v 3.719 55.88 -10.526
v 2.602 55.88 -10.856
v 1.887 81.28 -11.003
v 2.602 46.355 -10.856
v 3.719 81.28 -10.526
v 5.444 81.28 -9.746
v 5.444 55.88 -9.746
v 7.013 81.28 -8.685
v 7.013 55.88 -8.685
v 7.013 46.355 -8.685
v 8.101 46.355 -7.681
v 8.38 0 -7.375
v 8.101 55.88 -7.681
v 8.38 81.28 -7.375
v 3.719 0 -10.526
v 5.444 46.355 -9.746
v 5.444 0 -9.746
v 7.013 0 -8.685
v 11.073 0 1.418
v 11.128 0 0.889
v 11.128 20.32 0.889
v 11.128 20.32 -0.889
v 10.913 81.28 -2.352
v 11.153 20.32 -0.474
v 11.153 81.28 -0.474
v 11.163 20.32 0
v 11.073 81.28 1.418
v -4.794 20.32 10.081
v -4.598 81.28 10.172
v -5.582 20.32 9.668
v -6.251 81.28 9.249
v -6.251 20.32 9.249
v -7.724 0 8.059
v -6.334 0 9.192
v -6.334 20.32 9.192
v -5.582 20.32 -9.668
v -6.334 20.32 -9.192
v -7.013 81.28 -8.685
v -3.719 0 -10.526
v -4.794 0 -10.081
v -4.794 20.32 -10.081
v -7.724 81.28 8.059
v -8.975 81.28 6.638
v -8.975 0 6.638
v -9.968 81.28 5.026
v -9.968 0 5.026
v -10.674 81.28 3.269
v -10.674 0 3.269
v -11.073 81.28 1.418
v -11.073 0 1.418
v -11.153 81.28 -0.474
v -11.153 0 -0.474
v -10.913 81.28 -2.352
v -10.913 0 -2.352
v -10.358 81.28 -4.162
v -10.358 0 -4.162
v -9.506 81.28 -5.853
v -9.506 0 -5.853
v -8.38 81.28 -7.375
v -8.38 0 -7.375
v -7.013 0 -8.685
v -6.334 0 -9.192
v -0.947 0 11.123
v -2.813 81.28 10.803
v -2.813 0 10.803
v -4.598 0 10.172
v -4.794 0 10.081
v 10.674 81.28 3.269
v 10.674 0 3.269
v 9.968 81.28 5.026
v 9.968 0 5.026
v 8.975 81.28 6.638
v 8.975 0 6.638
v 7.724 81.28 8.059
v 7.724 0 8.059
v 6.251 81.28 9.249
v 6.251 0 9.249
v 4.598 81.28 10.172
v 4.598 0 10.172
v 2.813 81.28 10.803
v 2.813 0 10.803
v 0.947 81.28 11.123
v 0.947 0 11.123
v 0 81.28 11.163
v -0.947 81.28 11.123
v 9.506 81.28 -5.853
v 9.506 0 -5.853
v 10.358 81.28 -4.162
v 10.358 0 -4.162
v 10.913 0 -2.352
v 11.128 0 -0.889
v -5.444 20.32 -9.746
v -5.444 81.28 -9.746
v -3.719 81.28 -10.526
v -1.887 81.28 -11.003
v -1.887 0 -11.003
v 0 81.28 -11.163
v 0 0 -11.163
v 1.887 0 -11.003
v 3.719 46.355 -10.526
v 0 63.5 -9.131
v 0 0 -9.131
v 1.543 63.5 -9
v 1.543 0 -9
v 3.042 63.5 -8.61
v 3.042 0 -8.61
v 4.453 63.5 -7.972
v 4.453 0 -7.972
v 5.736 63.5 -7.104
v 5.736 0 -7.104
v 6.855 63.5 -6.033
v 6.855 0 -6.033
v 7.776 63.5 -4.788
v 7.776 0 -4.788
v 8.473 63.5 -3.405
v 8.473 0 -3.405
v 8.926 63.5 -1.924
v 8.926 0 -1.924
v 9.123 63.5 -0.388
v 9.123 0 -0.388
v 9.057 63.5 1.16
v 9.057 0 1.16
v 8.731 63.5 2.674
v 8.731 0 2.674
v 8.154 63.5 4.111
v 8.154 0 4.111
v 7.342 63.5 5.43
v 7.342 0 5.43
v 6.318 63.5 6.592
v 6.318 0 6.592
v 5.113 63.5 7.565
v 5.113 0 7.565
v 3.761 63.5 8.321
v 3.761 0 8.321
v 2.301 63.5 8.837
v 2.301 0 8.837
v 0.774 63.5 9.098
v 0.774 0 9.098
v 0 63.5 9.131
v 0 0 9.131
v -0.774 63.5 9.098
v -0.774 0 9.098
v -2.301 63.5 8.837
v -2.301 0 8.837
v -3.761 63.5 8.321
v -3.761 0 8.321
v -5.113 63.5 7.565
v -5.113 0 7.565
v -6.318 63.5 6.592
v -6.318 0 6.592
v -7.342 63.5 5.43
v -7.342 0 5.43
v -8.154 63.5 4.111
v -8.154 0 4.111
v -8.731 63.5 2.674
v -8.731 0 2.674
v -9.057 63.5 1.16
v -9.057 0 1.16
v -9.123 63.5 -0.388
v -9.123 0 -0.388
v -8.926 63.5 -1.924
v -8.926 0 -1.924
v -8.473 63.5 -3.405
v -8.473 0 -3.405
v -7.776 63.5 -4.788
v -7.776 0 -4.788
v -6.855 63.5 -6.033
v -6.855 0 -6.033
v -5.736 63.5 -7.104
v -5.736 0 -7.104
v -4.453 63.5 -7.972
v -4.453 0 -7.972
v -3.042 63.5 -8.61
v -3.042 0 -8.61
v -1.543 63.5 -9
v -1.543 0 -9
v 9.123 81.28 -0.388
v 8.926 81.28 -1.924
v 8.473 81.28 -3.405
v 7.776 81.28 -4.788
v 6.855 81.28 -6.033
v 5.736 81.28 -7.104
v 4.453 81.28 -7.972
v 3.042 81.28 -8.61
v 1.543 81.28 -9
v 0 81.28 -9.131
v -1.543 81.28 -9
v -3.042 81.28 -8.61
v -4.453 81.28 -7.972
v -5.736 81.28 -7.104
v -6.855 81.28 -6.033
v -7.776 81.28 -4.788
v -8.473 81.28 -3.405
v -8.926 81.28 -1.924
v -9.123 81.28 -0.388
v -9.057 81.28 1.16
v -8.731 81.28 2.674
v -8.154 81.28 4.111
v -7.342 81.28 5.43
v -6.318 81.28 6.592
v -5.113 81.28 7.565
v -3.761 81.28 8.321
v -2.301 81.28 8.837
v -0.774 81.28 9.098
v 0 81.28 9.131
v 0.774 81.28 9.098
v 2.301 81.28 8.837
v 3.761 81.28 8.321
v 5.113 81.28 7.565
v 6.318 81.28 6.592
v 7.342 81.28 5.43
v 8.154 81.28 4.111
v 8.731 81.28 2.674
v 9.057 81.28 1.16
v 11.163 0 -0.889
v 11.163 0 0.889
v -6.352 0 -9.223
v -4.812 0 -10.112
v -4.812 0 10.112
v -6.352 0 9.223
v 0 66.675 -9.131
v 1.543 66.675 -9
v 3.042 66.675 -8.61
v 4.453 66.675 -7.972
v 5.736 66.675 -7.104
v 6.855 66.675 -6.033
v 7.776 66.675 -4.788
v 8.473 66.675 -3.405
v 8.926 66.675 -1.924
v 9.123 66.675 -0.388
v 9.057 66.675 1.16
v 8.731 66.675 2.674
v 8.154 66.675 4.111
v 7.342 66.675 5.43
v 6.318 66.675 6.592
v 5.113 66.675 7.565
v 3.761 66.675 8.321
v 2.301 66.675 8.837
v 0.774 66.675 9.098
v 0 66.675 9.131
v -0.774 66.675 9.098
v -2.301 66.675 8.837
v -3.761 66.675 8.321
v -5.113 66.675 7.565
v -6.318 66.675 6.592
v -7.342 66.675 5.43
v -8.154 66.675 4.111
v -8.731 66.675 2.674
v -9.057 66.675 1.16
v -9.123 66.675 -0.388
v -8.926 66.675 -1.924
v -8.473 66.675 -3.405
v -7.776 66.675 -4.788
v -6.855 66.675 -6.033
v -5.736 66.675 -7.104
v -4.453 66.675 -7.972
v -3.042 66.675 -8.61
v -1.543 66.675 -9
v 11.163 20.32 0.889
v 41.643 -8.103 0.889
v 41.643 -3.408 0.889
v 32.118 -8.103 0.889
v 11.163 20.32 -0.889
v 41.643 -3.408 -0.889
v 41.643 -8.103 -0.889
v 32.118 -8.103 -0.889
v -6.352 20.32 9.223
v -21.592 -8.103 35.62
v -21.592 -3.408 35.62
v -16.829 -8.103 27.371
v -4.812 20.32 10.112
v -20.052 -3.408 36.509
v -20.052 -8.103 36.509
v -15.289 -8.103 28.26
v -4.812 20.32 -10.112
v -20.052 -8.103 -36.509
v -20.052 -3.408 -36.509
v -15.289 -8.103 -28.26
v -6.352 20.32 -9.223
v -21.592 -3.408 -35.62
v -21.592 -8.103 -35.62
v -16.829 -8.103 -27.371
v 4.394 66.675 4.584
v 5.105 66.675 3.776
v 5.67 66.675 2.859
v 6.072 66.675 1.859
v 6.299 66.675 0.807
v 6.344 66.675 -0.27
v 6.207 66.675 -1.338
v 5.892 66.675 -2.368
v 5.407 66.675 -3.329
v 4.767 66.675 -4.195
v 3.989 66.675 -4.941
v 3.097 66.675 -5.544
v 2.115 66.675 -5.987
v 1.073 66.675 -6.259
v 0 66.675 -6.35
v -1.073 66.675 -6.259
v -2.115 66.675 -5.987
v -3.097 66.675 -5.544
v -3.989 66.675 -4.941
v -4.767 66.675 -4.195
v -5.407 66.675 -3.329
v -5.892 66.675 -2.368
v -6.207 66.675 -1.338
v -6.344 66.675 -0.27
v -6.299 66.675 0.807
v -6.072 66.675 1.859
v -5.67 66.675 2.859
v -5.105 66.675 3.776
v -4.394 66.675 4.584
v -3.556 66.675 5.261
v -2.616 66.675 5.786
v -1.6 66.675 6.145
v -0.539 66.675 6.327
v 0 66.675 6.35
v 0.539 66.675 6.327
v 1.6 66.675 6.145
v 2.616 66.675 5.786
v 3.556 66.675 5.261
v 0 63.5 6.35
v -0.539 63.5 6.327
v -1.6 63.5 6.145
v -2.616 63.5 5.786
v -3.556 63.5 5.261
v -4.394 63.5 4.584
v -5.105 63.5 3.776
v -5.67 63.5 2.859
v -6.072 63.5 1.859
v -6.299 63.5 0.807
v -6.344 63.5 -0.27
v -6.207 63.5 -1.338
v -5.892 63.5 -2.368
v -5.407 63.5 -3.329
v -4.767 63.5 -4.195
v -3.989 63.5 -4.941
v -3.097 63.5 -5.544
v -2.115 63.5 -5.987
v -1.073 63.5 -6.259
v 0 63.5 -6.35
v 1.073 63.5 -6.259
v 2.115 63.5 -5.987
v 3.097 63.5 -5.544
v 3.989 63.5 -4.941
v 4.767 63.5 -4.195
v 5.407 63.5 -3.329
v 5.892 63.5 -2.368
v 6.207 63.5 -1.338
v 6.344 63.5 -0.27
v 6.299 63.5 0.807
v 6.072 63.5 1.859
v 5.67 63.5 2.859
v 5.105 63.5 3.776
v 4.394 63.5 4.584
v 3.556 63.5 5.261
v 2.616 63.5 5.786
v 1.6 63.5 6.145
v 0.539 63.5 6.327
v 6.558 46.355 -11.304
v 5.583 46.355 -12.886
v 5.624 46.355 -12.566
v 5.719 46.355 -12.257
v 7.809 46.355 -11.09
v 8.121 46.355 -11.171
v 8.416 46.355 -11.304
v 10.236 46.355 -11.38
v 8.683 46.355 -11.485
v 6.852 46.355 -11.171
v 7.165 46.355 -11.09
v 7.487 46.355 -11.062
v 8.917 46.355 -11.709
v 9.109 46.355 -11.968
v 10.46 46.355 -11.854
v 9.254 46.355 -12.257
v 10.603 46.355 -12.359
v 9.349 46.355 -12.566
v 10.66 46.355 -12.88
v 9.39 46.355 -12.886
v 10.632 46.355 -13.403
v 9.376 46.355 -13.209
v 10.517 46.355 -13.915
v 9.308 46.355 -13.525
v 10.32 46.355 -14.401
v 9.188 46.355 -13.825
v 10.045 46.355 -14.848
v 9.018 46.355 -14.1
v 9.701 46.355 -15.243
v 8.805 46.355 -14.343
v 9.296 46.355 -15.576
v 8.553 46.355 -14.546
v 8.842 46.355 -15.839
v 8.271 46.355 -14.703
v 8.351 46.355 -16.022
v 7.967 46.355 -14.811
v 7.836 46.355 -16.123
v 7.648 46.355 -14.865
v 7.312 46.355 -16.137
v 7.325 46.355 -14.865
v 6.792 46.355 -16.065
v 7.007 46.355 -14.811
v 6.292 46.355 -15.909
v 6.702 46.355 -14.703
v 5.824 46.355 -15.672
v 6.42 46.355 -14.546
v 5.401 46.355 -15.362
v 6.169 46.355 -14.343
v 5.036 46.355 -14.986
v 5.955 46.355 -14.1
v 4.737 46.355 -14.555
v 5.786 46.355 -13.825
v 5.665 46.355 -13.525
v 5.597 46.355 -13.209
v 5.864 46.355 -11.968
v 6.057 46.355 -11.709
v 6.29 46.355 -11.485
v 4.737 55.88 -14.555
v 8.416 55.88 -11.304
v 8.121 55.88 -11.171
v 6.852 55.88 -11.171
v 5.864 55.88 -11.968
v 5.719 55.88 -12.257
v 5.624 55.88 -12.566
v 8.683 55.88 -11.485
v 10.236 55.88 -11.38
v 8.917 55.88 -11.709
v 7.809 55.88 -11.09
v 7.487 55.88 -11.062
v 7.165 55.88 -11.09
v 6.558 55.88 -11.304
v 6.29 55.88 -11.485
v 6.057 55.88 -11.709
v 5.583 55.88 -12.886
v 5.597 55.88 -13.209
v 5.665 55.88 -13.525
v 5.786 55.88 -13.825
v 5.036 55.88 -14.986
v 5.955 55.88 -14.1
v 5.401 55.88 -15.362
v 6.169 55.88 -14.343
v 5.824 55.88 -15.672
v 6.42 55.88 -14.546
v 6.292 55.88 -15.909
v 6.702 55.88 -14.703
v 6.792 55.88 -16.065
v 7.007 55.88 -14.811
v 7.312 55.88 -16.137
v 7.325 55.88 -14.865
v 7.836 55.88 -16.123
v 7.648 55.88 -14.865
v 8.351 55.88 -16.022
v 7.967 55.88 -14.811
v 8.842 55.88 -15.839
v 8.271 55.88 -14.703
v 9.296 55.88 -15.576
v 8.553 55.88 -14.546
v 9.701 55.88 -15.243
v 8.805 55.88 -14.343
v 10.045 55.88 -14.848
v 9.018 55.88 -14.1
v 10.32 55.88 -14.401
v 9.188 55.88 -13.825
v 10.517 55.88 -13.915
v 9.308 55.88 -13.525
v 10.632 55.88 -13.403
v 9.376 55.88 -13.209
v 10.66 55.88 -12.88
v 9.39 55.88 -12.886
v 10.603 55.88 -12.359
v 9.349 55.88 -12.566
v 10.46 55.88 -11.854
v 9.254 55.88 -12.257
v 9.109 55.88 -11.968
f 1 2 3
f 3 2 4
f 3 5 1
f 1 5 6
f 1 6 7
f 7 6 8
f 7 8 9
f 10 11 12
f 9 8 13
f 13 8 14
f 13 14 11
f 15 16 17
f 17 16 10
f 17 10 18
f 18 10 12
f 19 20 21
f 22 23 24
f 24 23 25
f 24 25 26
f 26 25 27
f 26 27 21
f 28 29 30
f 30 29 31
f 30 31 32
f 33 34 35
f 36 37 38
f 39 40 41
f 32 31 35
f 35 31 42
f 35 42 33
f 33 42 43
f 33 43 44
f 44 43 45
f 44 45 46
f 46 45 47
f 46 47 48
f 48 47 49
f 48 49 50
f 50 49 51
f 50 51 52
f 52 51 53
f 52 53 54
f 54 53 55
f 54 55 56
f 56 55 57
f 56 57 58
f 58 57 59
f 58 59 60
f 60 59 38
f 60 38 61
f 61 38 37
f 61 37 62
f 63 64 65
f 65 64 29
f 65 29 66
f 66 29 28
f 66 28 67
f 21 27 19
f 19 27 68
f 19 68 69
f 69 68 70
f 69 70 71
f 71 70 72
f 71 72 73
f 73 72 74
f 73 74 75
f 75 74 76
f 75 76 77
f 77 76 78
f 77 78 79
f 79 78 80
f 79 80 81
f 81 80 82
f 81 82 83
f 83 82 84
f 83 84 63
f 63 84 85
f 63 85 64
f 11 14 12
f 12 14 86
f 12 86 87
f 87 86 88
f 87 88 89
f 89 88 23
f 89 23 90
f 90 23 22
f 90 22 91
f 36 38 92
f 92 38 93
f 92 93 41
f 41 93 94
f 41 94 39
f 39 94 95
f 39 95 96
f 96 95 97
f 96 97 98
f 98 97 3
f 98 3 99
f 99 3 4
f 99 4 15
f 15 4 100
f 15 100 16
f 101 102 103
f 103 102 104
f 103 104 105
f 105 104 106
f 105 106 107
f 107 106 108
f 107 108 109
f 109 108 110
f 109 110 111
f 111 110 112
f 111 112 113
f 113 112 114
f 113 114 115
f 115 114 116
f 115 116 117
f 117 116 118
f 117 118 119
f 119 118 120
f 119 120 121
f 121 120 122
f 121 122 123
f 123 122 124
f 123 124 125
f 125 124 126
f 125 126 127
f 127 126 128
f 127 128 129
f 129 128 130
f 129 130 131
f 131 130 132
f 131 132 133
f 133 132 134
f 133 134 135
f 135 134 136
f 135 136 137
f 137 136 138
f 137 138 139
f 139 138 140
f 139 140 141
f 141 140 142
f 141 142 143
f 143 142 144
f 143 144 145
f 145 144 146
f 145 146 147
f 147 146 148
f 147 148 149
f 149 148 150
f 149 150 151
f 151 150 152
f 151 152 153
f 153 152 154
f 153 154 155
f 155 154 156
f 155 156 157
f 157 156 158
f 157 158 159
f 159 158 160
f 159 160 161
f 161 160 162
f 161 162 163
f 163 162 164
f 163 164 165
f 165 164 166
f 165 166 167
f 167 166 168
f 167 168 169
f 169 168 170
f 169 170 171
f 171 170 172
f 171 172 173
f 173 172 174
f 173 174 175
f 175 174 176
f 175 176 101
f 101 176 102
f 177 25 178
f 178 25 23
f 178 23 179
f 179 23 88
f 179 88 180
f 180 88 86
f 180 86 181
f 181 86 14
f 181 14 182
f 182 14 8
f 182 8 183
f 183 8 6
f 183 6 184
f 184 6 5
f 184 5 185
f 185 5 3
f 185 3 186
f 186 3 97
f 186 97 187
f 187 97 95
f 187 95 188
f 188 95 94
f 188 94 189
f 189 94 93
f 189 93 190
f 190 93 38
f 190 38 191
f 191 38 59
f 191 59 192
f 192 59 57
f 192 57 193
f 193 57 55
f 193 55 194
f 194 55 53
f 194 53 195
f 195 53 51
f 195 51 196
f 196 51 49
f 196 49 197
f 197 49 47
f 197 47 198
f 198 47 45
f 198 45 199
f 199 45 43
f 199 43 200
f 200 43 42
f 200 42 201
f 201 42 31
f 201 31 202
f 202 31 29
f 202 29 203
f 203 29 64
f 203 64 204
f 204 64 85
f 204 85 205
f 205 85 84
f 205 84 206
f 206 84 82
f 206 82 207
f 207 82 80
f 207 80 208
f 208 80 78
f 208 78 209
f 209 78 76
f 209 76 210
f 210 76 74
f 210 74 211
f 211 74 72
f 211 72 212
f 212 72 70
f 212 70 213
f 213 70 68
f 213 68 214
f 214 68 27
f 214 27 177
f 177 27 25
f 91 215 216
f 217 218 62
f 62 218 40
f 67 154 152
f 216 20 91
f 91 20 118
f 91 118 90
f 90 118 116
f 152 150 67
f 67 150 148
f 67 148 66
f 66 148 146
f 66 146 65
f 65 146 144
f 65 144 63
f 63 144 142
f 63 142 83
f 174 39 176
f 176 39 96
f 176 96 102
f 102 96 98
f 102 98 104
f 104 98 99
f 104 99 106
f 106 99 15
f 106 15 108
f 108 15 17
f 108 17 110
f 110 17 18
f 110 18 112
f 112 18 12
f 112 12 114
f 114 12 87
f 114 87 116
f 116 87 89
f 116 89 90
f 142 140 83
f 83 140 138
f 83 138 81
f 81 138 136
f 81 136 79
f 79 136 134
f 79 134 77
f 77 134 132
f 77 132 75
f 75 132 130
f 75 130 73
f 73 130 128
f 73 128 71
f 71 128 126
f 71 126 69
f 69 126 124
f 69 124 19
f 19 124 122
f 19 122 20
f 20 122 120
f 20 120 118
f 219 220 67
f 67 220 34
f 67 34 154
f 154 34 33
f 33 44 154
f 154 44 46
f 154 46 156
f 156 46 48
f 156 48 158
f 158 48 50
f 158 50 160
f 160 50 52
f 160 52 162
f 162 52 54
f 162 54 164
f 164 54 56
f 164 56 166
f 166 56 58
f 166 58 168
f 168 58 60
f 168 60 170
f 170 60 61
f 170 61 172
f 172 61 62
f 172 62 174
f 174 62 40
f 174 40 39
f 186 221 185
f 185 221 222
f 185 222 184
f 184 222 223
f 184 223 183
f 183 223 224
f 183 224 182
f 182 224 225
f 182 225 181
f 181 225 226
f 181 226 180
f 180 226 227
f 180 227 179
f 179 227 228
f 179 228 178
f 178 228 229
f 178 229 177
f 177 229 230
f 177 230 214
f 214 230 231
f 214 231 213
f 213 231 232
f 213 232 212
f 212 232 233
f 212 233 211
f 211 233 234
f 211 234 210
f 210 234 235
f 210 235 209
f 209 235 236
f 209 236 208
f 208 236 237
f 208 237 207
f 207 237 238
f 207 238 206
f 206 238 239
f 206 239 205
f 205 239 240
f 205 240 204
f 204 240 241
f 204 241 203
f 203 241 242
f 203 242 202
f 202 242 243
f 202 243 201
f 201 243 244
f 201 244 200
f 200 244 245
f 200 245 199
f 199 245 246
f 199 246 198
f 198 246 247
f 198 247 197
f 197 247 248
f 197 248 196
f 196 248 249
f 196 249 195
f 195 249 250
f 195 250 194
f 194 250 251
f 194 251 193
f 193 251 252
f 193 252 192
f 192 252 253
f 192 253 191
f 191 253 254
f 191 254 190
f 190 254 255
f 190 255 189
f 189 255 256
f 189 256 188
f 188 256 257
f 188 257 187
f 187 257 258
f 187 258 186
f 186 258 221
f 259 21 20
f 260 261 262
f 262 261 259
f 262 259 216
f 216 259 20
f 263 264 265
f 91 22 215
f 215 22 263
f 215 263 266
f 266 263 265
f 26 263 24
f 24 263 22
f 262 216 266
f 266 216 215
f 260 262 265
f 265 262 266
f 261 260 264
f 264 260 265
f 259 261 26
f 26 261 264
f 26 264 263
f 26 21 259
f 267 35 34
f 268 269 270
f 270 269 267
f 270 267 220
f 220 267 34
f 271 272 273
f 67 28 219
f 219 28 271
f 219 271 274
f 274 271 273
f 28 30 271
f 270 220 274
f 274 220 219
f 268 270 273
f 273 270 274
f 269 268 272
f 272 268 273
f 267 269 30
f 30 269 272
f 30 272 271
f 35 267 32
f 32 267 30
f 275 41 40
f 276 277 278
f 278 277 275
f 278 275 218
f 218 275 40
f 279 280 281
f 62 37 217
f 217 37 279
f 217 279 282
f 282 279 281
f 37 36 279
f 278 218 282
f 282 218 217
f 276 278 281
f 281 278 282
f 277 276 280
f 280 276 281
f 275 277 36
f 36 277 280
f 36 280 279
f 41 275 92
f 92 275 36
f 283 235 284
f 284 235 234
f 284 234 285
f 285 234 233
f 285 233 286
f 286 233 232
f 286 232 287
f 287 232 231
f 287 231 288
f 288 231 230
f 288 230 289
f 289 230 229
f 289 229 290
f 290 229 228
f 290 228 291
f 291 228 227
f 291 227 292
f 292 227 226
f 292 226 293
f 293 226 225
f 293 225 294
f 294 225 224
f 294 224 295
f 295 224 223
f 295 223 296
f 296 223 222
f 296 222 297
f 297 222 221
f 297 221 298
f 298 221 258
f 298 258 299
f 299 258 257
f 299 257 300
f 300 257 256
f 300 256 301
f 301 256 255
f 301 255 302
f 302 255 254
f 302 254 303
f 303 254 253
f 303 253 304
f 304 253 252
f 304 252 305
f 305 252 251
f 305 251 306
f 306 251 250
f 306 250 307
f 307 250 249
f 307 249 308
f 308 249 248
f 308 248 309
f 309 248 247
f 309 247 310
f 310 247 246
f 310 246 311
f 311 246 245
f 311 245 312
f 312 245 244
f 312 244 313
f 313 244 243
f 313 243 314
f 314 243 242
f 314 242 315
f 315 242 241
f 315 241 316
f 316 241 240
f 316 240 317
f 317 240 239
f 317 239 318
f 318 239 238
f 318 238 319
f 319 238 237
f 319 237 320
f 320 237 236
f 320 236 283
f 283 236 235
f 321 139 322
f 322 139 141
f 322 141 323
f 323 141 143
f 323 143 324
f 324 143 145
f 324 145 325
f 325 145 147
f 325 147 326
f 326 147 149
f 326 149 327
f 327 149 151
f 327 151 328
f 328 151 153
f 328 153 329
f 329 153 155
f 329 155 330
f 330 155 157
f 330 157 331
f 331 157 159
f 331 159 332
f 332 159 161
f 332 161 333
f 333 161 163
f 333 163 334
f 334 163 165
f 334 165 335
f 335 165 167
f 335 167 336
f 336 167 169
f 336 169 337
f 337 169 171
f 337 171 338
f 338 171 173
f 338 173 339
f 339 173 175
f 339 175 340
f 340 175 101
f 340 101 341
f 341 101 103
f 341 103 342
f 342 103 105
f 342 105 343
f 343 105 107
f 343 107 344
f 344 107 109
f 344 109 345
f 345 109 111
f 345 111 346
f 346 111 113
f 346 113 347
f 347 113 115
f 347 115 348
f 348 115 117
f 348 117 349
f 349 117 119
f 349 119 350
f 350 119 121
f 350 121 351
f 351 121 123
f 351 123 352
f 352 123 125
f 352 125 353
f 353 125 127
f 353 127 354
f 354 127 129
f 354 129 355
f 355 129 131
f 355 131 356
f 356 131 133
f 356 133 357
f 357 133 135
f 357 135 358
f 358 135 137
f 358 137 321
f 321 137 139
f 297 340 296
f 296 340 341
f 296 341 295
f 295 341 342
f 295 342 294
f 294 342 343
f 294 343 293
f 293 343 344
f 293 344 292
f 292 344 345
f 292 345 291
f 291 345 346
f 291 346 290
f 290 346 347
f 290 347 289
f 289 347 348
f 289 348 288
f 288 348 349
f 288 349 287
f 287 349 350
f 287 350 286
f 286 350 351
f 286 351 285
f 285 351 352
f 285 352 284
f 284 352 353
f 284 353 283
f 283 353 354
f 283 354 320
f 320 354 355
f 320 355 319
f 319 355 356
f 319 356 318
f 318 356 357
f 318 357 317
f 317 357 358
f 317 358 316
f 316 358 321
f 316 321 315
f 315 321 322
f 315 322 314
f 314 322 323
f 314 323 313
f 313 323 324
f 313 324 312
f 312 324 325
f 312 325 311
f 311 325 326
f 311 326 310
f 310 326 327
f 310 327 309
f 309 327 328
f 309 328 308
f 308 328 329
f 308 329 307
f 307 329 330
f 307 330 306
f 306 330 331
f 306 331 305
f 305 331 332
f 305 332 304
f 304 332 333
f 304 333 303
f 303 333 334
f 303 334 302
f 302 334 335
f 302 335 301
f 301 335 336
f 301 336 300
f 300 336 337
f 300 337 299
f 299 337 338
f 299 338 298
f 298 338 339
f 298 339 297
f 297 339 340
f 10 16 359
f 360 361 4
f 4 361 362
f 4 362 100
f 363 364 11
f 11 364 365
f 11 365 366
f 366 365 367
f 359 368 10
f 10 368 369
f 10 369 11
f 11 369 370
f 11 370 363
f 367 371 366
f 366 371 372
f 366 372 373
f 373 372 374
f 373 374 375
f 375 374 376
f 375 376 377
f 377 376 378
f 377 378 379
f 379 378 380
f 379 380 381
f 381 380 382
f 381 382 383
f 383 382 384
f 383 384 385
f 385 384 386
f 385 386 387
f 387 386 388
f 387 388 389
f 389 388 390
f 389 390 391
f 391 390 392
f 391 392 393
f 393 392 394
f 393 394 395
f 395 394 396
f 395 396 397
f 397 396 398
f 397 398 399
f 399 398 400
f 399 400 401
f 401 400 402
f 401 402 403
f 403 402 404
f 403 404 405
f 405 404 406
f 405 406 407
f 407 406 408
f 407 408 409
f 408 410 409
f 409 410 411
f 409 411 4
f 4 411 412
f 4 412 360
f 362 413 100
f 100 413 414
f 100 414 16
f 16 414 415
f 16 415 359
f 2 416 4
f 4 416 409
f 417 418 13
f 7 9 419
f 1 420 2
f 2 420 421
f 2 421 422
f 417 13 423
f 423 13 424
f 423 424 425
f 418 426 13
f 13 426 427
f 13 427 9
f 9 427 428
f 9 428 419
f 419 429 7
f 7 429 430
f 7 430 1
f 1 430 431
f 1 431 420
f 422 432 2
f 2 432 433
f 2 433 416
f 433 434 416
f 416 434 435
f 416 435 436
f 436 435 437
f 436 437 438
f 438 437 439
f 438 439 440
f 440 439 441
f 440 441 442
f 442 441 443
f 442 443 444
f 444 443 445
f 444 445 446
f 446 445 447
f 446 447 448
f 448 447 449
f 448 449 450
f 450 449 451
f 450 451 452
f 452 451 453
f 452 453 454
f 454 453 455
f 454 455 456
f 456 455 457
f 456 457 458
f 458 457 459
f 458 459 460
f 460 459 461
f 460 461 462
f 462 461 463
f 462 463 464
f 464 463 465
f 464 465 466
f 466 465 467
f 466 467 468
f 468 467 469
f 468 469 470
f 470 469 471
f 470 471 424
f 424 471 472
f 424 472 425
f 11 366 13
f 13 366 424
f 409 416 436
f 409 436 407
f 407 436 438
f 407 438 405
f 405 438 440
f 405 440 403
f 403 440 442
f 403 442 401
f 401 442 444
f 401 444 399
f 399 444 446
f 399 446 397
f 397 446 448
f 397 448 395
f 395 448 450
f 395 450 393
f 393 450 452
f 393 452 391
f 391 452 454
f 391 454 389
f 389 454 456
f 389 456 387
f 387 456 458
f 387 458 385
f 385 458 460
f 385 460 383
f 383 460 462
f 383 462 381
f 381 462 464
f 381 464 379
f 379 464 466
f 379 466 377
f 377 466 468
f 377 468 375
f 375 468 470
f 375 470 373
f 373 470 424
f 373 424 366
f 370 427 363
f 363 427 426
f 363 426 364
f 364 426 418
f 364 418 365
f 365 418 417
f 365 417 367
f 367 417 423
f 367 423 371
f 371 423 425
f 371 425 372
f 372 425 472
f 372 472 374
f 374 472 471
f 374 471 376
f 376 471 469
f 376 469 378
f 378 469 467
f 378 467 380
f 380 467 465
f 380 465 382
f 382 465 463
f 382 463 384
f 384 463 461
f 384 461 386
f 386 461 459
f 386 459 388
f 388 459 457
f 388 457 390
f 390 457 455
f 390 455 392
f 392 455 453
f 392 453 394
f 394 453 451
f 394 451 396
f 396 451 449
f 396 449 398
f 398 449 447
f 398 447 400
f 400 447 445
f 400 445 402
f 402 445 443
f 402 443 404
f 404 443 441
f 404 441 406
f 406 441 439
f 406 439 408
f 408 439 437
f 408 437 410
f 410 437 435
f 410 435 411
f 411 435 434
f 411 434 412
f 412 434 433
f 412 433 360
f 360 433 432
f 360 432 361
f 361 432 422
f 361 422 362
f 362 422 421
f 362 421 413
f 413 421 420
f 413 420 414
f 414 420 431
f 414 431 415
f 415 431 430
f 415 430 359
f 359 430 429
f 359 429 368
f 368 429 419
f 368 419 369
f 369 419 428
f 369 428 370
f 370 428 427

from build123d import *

# Parameters (mm, degrees)
SKETCH1_R           = 11.1633
SKETCH1_R_2         = 9.1313
BOSS_EXTRUDE1_DEPTH = 81.28
BOSS_EXTRUDE2_DEPTH = 0.889
CIRPATTERN1_COUNT   = 3
SKETCH3_R           = 9.1313
SKETCH3_R_2         = 6.35
BOSS_EXTRUDE3_DEPTH = 3.175
BOSS_EXTRUDE4_START = -0.461027
SKETCH5_W           = 9.525
SKETCH5_H           = 6.35
BOSS_EXTRUDE4_DEPTH = 4.271027
BOSS_EXTRUDE5_DEPTH = 9.525
SKETCH7_R           = 1.905
CUT_EXTRUDE1_DEPTH  = 9.525


with BuildPart() as part:
    # Sketch1 → Boss-Extrude1 (new body)
    with BuildSketch(Plane(origin=(0, 0, 0), x_dir=(1, 0, 0), z_dir=(0, 1, 0))):
        with Locations(Location((0, 0, 0), (0, 0, 270))):
            Circle(SKETCH1_R)
        with Locations(Location((0, 0, 0), (0, 0, 270))):
            Circle(SKETCH1_R_2, mode=Mode.SUBTRACT)
    extrude(amount=BOSS_EXTRUDE1_DEPTH)

    # Sketch2 → Boss-Extrude2 (add, symmetric)
    with BuildSketch(Plane.XY):
        Polygon((11.1633, 0), (9.1313, 0), (9.1313, 20.32), (11.1633, 20.32), (41.6433, -3.408032613), (41.6433, -8.103225478), (32.1183, -8.103225478), align=None)
    boss_extrude2 = extrude(amount=BOSS_EXTRUDE2_DEPTH, both=True)

    # CirPattern1: Boss-Extrude2 ×3 about axis
    cirpattern1_axis = Axis((0, 0, 0), (0, 1, 0))
    for i in range(1, CIRPATTERN1_COUNT):
        add(boss_extrude2.rotate(cirpattern1_axis, i * 360 / CIRPATTERN1_COUNT))

    # Sketch3 → Boss-Extrude3 (add)
    with BuildSketch(Plane(origin=(0, 63.5, 0), x_dir=(1, 0, 0), z_dir=(0, 1, 0))):
        with Locations(Location((0, 0, 0), (0, 0, 270))):
            Circle(SKETCH3_R)
        with Locations(Location((0, 0, 0), (0, 0, 270))):
            Circle(SKETCH3_R_2, mode=Mode.SUBTRACT)
    extrude(amount=BOSS_EXTRUDE3_DEPTH)

    # Sketch5 → Boss-Extrude4 (add)
    with BuildSketch(Plane(origin=(5.58165, 0, -9.66770139), x_dir=(0, -1, 0), z_dir=(0.500000000000001, 0, -0.866025403784438)).offset(BOSS_EXTRUDE4_START)):
        with Locations((-51.1175, 0)):
            Rectangle(SKETCH5_W, SKETCH5_H)
    extrude(amount=BOSS_EXTRUDE4_DEPTH)

    # Sketch6 → Boss-Extrude5 (add)
    with BuildSketch(Plane(origin=(0, 55.88, 0), x_dir=(1, 0, 0), z_dir=(0, 1, 0))):
        with BuildLine():
            Line((4.737019343, 14.554758178), (10.236280657, 11.379758178))
            ThreePointArc((10.236280657, 11.379758178), (9.07415, 15.716888836), (4.737019343, 14.554758178))
        make_face()
    extrude(amount=-BOSS_EXTRUDE5_DEPTH)

    # Sketch7 → Cut-Extrude1 (cut)
    with BuildSketch(Plane(origin=(0, 55.88, 0), x_dir=(1, 0, 0), z_dir=(0, 1, 0))):
        with Locations(Location((7.48665, 12.967258178, 0), (0, 0, 270))):
            Circle(SKETCH7_R)
    extrude(amount=-CUT_EXTRUDE1_DEPTH, mode=Mode.SUBTRACT)


solid = part.part
